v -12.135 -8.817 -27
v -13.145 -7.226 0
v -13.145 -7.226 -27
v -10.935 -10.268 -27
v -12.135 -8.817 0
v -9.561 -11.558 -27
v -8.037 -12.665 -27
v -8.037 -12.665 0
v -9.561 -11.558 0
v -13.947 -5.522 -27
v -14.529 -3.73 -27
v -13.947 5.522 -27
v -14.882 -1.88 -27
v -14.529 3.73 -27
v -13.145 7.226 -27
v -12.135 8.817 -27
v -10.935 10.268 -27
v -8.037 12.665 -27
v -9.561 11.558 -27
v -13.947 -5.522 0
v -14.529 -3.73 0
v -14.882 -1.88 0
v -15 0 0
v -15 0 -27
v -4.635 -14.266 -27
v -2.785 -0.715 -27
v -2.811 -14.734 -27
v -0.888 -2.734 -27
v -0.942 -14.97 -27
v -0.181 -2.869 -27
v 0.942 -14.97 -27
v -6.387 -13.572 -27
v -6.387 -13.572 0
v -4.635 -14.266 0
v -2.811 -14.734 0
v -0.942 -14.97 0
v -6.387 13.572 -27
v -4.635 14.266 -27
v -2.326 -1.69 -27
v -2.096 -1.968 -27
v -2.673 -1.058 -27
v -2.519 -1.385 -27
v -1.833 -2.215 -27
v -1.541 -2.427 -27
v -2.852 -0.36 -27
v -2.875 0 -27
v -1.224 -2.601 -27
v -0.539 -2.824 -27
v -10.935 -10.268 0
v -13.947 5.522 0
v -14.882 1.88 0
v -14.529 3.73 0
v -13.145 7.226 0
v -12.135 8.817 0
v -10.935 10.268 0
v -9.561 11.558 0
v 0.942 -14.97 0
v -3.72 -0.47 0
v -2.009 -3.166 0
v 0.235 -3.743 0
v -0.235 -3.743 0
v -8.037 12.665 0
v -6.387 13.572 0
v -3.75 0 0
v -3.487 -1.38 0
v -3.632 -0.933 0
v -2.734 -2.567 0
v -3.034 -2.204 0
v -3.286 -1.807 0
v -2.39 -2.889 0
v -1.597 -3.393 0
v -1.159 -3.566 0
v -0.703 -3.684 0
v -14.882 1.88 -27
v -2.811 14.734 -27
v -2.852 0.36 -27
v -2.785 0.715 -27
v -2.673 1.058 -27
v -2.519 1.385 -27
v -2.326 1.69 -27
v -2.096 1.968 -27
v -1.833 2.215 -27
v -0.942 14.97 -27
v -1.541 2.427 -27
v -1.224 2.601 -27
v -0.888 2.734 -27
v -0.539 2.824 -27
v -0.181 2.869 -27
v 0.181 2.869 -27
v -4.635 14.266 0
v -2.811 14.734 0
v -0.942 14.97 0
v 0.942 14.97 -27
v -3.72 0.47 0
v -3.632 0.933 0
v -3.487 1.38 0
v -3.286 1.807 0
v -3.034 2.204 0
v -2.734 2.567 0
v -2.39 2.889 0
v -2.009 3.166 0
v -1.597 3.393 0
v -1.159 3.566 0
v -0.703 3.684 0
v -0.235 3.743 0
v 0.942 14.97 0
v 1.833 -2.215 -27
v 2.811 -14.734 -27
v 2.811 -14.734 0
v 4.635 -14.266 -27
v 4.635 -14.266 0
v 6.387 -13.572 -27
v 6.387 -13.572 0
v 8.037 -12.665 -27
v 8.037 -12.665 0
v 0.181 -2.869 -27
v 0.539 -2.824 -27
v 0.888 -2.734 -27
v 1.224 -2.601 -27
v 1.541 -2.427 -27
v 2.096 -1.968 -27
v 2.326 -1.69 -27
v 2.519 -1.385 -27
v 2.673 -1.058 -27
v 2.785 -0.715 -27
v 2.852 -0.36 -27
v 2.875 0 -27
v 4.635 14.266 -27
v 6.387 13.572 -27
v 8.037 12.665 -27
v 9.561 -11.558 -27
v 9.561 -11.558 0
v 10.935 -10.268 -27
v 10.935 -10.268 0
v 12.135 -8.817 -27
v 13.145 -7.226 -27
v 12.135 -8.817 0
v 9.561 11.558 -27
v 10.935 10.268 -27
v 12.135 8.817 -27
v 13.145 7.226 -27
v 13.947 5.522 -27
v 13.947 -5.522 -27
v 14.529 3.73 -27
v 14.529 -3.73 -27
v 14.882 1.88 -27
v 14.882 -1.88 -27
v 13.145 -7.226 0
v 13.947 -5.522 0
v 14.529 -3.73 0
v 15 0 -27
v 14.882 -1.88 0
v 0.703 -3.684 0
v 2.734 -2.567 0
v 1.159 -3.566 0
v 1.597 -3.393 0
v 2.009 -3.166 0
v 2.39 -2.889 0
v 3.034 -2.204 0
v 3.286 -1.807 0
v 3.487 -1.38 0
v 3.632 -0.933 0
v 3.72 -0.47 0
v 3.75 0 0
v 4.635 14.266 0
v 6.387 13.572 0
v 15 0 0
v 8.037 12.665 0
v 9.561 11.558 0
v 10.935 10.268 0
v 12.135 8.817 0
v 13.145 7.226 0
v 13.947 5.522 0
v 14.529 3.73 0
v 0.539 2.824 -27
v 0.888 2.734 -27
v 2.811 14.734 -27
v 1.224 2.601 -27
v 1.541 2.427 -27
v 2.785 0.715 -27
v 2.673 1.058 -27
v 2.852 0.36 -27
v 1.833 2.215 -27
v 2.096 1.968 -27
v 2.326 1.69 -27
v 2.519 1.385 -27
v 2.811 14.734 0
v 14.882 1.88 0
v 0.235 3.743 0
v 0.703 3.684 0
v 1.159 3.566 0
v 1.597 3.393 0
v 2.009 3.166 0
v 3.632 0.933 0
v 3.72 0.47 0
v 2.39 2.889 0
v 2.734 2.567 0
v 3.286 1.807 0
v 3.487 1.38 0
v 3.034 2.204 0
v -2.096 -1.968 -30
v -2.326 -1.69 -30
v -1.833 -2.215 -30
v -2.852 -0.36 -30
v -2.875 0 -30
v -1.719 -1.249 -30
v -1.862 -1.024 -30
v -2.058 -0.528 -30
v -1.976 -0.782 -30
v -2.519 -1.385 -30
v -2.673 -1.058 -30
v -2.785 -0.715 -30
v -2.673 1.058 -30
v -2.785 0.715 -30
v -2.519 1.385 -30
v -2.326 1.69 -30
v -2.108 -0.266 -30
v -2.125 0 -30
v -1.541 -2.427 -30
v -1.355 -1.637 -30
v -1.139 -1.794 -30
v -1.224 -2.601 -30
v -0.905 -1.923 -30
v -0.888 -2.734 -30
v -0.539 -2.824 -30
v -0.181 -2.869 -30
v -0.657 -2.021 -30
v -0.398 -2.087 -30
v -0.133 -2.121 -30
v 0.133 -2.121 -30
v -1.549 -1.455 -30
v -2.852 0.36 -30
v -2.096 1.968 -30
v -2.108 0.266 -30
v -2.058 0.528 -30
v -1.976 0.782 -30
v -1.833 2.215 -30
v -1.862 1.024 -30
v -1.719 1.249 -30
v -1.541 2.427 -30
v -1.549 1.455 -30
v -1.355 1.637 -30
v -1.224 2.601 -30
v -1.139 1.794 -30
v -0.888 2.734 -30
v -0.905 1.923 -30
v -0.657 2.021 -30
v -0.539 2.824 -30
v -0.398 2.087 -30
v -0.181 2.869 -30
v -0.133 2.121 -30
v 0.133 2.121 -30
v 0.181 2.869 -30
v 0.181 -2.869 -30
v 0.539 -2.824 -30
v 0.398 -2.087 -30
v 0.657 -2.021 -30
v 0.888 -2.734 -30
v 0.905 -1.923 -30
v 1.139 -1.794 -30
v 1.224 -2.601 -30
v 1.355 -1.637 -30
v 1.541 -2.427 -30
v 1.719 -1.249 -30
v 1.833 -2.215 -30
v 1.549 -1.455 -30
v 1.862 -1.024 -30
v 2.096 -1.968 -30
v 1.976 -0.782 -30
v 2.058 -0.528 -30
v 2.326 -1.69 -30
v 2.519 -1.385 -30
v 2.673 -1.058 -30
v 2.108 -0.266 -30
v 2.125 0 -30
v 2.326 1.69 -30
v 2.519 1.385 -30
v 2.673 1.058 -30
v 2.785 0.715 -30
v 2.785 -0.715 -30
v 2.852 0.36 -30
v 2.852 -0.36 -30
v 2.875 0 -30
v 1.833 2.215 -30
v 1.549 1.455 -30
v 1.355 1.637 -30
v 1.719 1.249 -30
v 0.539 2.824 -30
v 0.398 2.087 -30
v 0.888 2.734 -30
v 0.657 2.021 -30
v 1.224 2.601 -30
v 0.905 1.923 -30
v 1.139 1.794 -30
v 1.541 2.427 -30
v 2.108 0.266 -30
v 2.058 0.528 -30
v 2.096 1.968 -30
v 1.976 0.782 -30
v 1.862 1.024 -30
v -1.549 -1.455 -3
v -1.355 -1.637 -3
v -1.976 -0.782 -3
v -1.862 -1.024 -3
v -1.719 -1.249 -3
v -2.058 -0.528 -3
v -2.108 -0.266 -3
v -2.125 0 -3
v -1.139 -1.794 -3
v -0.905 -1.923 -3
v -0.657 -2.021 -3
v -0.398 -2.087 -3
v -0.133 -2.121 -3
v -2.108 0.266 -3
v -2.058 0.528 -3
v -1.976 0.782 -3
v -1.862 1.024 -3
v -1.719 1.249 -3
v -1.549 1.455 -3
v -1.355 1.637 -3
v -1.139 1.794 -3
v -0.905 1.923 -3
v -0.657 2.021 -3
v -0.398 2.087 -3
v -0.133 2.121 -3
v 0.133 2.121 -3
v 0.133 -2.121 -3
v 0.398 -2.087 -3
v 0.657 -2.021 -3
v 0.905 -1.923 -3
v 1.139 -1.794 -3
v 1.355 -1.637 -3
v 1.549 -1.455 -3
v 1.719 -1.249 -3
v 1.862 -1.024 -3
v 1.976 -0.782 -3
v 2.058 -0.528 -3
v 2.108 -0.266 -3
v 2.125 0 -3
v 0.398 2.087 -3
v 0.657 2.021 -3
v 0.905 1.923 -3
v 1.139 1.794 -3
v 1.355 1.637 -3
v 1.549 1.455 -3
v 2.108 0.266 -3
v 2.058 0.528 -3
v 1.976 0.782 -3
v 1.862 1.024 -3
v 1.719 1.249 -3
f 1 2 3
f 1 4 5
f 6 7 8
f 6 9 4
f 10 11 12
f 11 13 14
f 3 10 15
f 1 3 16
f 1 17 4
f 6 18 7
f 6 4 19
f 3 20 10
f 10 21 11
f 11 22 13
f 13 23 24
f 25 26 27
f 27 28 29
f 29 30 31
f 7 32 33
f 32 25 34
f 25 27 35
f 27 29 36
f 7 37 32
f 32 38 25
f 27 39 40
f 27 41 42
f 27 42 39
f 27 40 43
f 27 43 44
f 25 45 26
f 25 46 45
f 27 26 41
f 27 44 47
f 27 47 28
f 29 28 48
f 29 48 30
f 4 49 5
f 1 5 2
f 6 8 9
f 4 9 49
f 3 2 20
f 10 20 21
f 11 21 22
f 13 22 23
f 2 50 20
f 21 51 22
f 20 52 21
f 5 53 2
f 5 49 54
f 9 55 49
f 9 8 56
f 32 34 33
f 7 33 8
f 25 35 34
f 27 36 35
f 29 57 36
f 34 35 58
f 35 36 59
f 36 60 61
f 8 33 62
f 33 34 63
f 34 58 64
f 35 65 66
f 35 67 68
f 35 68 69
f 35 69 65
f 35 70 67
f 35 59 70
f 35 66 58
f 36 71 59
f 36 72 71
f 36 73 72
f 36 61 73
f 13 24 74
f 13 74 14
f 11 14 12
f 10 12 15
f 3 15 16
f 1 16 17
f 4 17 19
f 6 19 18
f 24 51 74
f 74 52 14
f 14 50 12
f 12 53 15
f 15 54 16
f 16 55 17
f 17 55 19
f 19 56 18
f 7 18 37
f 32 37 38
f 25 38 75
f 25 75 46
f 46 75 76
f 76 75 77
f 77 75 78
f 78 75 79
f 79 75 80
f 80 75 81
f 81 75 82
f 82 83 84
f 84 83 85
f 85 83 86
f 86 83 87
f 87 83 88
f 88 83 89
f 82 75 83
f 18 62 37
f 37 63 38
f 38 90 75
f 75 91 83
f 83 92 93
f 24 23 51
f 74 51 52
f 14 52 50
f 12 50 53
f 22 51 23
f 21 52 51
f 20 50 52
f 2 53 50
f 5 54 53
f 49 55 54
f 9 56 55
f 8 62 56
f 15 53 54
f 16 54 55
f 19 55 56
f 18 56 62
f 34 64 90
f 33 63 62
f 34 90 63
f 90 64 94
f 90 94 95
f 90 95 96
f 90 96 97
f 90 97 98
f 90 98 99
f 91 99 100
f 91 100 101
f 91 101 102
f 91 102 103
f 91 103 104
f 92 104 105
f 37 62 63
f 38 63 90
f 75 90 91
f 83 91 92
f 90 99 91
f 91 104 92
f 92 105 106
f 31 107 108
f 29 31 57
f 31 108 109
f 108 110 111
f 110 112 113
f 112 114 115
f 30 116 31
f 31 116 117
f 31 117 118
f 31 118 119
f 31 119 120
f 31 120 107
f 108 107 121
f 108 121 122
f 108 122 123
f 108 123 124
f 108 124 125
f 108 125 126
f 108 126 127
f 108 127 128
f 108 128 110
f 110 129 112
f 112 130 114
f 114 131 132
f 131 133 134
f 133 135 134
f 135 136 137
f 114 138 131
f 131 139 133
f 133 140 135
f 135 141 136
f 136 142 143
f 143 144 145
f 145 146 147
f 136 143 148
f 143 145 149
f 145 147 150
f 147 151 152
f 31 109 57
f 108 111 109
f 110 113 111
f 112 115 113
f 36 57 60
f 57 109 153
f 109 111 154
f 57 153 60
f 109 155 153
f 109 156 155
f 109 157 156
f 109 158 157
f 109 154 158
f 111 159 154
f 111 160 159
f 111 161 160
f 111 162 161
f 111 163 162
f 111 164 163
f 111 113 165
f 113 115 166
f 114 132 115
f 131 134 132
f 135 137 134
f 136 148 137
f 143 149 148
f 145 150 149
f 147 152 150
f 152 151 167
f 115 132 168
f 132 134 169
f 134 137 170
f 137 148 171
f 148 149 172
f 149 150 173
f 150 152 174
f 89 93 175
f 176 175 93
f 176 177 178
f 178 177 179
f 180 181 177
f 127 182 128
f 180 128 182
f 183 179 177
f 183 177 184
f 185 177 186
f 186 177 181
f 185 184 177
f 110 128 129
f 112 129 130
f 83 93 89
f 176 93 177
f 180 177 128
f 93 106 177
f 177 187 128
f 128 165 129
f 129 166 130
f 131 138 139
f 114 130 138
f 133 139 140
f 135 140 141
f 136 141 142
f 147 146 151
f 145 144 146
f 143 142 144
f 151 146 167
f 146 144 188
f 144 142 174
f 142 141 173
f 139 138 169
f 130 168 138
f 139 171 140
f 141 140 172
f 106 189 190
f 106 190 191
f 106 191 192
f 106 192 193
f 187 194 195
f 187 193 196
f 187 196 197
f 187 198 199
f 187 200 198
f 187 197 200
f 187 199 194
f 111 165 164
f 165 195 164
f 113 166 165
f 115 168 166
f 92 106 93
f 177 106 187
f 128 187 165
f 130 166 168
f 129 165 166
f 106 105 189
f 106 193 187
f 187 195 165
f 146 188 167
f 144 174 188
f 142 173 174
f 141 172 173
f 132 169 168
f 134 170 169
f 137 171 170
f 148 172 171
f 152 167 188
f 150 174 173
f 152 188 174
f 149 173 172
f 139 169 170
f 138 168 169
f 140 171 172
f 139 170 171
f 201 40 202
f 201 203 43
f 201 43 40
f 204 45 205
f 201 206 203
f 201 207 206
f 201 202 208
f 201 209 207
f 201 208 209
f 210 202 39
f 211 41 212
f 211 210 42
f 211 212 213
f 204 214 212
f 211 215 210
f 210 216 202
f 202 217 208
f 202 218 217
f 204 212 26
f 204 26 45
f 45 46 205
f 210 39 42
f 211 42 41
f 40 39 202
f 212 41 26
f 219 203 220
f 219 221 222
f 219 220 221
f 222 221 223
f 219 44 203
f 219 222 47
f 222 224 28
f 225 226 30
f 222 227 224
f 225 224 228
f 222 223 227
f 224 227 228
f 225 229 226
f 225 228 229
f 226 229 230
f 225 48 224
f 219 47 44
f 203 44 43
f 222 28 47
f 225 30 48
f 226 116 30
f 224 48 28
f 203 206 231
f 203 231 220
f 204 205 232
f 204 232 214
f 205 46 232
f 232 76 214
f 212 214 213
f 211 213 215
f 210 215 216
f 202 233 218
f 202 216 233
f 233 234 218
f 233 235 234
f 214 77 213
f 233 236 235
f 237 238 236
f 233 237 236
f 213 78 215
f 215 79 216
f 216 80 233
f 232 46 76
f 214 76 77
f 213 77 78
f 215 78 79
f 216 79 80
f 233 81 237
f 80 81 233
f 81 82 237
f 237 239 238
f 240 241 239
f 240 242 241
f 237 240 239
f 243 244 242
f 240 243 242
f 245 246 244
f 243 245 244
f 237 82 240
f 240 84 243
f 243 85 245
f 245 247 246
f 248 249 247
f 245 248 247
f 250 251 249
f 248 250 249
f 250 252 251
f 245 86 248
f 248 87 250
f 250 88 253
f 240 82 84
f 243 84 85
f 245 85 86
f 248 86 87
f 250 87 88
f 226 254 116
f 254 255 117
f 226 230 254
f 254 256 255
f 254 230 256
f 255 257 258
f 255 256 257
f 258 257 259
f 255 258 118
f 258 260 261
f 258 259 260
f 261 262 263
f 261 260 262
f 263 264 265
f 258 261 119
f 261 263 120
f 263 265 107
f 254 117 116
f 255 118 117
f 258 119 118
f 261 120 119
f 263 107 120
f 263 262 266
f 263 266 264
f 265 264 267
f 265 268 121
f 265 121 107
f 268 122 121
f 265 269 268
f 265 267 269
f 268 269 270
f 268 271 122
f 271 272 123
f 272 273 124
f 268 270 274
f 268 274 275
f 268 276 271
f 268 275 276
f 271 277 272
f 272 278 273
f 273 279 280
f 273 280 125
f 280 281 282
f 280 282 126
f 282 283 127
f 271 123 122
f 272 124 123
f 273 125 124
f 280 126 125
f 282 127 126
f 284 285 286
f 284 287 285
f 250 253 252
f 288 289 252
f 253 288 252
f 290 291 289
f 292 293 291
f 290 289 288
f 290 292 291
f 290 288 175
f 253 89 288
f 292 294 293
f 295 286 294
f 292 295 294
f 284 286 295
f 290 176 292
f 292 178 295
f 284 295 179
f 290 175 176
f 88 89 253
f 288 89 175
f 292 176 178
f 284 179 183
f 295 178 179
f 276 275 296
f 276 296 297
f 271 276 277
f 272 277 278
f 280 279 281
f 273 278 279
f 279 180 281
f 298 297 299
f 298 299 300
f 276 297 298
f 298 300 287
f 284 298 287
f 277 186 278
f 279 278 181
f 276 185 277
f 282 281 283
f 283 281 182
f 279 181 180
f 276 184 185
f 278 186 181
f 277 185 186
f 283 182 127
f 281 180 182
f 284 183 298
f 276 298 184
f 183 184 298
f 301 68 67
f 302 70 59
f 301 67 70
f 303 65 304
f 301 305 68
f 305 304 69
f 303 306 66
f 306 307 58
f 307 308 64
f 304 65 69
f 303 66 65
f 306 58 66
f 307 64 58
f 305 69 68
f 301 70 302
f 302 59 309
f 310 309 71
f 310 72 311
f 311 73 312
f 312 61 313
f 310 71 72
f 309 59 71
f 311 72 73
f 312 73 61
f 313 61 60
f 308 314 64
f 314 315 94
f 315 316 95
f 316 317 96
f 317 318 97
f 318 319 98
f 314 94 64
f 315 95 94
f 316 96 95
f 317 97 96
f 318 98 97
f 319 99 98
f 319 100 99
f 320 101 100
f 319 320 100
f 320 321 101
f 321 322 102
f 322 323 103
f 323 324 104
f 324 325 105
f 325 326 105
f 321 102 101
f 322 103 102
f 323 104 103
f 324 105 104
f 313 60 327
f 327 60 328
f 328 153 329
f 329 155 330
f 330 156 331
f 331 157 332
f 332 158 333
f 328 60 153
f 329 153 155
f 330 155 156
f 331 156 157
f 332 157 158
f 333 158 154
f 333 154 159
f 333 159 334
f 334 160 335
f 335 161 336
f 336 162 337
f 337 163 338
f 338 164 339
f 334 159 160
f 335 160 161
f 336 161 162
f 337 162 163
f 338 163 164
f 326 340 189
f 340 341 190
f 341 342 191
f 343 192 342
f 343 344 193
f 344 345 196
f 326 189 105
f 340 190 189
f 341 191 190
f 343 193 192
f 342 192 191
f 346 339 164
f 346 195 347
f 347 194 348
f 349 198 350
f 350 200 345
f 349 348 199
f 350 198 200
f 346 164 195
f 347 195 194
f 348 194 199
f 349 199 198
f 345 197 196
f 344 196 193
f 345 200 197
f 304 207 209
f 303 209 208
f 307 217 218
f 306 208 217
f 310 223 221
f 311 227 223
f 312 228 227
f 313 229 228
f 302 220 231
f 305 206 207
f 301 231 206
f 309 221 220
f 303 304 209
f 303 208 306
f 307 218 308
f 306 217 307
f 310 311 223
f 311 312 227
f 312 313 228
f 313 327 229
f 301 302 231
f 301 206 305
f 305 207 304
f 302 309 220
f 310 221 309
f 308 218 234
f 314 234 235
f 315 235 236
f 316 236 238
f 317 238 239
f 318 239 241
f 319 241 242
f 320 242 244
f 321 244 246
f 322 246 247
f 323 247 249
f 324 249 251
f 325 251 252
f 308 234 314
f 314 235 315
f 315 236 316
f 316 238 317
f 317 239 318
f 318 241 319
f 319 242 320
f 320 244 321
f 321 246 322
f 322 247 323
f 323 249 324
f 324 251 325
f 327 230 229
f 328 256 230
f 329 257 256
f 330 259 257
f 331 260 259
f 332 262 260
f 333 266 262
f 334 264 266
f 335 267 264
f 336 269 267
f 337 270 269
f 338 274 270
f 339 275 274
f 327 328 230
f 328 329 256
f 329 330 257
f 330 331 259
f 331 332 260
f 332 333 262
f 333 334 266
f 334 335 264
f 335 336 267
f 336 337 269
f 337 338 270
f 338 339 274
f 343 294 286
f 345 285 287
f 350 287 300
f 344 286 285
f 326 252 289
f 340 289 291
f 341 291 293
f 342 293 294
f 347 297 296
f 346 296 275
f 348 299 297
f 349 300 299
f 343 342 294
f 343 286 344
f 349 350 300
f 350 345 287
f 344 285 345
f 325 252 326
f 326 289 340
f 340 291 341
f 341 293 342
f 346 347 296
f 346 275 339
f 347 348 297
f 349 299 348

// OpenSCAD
$fn = 50;

difference() {
	union() {
		translate(v = [0, 0, -27.0]) {
			cylinder(h = 27, r = 15.0);
		}
		#translate(v = [0, 0, -30.0]) {
			cylinder(h = 30, r = 2.875);
		}
	}
	union() {
		translate(v = [0, 0, 0]) {
			rotate(a = [0, 0, 0]) {
				difference() {
					union() {
						translate(v = [0, 0, -30.0]) {
							cylinder(h = 30, r = 2.0);
						}
						translate(v = [0, 0, -3]) {
							cylinder(h = 3, r1 = 2.125, r2 = 3.75);
						}
						translate(v = [0, 0, -30.0]) {
							cylinder(h = 30, r = 2.125);
						}
						translate(v = [0, 0, -30.0]) {
							cylinder(h = 30, r = 2.0);
						}
					}
					union();
				}
			}
		}
	}
}
